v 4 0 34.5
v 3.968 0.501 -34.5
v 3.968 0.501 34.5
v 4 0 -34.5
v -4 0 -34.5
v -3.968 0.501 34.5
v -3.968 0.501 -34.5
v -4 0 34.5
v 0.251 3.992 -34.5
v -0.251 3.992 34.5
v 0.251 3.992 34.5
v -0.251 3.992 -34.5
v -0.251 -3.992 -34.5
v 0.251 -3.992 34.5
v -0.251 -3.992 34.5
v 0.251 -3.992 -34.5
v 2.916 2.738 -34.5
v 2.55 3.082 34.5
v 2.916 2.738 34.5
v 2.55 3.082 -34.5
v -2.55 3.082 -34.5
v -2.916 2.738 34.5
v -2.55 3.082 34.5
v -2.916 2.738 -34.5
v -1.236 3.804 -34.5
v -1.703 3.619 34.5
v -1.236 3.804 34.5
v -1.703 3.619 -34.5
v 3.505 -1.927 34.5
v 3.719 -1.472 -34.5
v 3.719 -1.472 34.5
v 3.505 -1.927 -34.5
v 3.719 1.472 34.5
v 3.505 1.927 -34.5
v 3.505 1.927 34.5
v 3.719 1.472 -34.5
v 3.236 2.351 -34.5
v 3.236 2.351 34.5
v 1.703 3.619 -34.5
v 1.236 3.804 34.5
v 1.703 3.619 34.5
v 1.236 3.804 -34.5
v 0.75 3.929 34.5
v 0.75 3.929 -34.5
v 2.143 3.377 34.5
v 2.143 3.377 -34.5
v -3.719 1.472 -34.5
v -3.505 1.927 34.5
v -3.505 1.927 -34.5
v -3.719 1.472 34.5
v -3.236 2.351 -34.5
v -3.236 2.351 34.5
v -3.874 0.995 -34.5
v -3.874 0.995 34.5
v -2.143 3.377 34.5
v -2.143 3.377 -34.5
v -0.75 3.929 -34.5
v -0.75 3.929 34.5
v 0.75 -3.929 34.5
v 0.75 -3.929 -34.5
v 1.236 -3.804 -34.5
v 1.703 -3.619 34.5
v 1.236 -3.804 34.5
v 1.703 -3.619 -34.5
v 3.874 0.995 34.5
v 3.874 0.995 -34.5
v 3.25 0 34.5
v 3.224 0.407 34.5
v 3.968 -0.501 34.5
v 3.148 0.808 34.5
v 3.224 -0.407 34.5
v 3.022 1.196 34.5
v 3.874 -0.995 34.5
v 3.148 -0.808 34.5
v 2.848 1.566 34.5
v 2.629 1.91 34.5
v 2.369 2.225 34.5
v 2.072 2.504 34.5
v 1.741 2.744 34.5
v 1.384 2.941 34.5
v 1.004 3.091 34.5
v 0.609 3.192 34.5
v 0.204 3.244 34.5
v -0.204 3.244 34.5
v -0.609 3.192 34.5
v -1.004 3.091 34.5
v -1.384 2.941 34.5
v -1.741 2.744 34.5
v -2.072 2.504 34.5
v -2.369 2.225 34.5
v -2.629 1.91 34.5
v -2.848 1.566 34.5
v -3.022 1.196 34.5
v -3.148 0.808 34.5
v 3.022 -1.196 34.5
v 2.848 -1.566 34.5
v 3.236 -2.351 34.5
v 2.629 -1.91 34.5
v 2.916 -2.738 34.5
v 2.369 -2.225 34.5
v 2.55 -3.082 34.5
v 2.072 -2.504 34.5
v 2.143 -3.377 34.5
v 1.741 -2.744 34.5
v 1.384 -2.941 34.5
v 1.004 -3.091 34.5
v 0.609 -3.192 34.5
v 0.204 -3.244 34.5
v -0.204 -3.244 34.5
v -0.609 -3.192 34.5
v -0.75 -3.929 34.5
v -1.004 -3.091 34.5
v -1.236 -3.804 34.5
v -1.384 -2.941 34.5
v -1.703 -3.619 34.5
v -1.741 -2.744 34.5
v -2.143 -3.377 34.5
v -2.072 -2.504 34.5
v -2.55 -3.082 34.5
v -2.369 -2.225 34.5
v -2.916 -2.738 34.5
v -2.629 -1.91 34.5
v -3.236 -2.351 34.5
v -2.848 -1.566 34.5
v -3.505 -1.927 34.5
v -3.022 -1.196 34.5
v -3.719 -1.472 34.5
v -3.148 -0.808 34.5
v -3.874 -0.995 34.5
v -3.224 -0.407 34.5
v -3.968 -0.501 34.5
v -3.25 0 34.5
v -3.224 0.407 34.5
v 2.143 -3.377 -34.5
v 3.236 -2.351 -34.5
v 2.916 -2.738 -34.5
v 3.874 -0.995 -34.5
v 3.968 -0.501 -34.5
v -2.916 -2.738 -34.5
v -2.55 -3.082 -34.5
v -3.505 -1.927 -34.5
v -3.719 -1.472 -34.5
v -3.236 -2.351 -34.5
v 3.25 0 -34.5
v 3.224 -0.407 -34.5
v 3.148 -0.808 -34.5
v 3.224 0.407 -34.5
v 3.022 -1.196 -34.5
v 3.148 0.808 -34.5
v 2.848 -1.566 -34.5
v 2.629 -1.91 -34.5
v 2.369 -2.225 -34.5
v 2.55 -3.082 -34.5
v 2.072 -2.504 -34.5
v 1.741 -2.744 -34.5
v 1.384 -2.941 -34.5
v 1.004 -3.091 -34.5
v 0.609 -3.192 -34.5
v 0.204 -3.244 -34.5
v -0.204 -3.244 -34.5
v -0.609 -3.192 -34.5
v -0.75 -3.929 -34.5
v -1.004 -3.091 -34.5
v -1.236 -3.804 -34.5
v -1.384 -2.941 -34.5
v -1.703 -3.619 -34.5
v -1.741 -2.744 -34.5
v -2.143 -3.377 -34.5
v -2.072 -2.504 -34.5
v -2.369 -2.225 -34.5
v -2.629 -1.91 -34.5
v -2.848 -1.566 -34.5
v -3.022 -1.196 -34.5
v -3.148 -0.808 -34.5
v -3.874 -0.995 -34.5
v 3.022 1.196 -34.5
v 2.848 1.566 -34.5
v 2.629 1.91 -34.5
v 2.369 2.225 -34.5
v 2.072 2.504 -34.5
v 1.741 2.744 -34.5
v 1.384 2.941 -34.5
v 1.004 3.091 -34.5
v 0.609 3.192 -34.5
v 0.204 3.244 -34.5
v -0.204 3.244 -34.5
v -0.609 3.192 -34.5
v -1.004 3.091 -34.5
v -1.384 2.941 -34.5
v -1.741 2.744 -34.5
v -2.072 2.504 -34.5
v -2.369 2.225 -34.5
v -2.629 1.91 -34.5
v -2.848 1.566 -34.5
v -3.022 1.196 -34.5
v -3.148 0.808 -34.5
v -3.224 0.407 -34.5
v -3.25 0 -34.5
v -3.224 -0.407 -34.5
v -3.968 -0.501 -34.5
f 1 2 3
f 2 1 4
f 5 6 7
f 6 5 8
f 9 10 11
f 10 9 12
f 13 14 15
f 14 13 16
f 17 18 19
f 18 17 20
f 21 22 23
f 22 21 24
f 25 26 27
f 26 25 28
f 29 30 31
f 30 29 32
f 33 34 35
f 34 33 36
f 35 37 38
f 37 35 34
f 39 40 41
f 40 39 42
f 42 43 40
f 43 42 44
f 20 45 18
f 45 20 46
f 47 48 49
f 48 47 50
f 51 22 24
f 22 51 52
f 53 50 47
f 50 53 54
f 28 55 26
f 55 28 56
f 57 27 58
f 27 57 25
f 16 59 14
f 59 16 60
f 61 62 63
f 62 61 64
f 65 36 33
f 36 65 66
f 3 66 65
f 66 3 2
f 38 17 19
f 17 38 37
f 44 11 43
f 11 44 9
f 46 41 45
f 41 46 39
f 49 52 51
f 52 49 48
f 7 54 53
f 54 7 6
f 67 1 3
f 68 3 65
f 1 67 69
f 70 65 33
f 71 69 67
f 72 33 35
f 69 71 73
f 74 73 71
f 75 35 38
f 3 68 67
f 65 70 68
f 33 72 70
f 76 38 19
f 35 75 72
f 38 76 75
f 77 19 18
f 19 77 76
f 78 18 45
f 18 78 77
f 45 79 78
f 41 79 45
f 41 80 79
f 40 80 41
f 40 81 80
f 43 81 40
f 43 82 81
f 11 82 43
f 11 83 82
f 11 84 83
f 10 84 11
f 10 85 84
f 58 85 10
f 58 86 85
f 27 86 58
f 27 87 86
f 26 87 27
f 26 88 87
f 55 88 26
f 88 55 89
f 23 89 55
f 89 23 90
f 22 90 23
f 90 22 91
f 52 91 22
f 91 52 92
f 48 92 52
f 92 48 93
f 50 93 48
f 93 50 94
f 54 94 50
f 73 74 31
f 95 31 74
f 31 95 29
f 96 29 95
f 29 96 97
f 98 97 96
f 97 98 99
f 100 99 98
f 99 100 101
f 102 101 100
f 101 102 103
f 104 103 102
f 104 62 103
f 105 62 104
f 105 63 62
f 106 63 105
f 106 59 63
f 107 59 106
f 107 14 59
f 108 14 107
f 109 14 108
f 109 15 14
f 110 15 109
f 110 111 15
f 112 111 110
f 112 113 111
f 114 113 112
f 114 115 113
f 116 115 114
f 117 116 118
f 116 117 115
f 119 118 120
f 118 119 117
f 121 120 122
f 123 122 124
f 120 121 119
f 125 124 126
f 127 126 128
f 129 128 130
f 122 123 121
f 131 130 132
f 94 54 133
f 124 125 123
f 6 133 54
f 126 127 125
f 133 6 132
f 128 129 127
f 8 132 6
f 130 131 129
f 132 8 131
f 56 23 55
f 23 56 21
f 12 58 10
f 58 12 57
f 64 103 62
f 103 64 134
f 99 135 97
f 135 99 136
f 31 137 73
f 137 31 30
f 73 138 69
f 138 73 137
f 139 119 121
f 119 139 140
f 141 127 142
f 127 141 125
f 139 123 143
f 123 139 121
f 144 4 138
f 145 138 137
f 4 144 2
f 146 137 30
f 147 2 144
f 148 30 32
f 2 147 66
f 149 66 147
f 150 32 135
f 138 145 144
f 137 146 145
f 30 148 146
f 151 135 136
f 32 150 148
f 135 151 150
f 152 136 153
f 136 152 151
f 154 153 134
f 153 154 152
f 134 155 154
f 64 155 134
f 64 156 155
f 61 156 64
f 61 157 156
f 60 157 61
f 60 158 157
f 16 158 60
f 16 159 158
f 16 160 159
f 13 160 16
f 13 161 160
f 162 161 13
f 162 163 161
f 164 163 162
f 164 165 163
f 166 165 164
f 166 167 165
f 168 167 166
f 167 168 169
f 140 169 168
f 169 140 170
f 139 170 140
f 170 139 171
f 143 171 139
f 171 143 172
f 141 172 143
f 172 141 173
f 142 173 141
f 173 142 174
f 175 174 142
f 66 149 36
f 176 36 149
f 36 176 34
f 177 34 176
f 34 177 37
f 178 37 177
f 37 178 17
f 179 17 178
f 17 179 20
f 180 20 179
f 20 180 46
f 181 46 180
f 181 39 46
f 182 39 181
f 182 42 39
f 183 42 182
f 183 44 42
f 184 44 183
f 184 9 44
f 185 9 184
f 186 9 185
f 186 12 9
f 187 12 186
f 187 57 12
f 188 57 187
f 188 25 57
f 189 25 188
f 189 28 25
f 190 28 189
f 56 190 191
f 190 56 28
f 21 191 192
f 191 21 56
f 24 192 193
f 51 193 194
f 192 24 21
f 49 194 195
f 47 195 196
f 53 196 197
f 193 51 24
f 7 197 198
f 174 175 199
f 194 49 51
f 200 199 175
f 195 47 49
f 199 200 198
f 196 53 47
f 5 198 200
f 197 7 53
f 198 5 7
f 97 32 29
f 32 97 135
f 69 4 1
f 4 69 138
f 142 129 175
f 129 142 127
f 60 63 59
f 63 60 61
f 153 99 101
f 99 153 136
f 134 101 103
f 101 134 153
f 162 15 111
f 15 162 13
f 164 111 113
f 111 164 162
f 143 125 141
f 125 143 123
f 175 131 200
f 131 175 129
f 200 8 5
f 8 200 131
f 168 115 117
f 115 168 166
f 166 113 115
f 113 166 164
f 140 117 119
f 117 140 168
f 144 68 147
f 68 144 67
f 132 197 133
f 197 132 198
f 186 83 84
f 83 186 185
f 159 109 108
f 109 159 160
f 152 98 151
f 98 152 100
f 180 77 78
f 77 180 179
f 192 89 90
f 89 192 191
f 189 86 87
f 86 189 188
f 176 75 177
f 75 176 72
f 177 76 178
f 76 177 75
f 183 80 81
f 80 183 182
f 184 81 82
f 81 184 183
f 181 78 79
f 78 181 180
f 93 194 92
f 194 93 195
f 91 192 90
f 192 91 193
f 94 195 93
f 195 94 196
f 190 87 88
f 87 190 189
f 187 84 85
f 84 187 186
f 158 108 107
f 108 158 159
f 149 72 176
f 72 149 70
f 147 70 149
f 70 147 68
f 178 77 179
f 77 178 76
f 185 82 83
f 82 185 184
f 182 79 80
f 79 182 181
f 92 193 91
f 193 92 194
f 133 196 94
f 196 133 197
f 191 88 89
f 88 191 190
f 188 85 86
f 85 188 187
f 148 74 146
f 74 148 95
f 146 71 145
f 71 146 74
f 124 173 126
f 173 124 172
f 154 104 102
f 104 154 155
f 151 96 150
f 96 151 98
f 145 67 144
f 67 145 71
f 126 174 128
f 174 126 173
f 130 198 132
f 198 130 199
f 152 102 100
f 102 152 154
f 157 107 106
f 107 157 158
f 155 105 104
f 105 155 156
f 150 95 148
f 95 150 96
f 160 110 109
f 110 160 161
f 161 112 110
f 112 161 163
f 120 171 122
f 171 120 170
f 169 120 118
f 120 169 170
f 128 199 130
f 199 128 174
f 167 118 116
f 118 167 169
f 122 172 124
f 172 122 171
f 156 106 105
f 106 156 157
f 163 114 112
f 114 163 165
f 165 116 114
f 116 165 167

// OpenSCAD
$fn = 50;


difference() {
	union() {
		translate(v = [0, 0, -34.5000000000]) {
			cylinder(h = 69, r = 4.0000000000);
		}
	}
	union() {
		translate(v = [0, 0, -100.0000000000]) {
			cylinder(h = 200, r = 3.2500000000);
		}
	}
}
